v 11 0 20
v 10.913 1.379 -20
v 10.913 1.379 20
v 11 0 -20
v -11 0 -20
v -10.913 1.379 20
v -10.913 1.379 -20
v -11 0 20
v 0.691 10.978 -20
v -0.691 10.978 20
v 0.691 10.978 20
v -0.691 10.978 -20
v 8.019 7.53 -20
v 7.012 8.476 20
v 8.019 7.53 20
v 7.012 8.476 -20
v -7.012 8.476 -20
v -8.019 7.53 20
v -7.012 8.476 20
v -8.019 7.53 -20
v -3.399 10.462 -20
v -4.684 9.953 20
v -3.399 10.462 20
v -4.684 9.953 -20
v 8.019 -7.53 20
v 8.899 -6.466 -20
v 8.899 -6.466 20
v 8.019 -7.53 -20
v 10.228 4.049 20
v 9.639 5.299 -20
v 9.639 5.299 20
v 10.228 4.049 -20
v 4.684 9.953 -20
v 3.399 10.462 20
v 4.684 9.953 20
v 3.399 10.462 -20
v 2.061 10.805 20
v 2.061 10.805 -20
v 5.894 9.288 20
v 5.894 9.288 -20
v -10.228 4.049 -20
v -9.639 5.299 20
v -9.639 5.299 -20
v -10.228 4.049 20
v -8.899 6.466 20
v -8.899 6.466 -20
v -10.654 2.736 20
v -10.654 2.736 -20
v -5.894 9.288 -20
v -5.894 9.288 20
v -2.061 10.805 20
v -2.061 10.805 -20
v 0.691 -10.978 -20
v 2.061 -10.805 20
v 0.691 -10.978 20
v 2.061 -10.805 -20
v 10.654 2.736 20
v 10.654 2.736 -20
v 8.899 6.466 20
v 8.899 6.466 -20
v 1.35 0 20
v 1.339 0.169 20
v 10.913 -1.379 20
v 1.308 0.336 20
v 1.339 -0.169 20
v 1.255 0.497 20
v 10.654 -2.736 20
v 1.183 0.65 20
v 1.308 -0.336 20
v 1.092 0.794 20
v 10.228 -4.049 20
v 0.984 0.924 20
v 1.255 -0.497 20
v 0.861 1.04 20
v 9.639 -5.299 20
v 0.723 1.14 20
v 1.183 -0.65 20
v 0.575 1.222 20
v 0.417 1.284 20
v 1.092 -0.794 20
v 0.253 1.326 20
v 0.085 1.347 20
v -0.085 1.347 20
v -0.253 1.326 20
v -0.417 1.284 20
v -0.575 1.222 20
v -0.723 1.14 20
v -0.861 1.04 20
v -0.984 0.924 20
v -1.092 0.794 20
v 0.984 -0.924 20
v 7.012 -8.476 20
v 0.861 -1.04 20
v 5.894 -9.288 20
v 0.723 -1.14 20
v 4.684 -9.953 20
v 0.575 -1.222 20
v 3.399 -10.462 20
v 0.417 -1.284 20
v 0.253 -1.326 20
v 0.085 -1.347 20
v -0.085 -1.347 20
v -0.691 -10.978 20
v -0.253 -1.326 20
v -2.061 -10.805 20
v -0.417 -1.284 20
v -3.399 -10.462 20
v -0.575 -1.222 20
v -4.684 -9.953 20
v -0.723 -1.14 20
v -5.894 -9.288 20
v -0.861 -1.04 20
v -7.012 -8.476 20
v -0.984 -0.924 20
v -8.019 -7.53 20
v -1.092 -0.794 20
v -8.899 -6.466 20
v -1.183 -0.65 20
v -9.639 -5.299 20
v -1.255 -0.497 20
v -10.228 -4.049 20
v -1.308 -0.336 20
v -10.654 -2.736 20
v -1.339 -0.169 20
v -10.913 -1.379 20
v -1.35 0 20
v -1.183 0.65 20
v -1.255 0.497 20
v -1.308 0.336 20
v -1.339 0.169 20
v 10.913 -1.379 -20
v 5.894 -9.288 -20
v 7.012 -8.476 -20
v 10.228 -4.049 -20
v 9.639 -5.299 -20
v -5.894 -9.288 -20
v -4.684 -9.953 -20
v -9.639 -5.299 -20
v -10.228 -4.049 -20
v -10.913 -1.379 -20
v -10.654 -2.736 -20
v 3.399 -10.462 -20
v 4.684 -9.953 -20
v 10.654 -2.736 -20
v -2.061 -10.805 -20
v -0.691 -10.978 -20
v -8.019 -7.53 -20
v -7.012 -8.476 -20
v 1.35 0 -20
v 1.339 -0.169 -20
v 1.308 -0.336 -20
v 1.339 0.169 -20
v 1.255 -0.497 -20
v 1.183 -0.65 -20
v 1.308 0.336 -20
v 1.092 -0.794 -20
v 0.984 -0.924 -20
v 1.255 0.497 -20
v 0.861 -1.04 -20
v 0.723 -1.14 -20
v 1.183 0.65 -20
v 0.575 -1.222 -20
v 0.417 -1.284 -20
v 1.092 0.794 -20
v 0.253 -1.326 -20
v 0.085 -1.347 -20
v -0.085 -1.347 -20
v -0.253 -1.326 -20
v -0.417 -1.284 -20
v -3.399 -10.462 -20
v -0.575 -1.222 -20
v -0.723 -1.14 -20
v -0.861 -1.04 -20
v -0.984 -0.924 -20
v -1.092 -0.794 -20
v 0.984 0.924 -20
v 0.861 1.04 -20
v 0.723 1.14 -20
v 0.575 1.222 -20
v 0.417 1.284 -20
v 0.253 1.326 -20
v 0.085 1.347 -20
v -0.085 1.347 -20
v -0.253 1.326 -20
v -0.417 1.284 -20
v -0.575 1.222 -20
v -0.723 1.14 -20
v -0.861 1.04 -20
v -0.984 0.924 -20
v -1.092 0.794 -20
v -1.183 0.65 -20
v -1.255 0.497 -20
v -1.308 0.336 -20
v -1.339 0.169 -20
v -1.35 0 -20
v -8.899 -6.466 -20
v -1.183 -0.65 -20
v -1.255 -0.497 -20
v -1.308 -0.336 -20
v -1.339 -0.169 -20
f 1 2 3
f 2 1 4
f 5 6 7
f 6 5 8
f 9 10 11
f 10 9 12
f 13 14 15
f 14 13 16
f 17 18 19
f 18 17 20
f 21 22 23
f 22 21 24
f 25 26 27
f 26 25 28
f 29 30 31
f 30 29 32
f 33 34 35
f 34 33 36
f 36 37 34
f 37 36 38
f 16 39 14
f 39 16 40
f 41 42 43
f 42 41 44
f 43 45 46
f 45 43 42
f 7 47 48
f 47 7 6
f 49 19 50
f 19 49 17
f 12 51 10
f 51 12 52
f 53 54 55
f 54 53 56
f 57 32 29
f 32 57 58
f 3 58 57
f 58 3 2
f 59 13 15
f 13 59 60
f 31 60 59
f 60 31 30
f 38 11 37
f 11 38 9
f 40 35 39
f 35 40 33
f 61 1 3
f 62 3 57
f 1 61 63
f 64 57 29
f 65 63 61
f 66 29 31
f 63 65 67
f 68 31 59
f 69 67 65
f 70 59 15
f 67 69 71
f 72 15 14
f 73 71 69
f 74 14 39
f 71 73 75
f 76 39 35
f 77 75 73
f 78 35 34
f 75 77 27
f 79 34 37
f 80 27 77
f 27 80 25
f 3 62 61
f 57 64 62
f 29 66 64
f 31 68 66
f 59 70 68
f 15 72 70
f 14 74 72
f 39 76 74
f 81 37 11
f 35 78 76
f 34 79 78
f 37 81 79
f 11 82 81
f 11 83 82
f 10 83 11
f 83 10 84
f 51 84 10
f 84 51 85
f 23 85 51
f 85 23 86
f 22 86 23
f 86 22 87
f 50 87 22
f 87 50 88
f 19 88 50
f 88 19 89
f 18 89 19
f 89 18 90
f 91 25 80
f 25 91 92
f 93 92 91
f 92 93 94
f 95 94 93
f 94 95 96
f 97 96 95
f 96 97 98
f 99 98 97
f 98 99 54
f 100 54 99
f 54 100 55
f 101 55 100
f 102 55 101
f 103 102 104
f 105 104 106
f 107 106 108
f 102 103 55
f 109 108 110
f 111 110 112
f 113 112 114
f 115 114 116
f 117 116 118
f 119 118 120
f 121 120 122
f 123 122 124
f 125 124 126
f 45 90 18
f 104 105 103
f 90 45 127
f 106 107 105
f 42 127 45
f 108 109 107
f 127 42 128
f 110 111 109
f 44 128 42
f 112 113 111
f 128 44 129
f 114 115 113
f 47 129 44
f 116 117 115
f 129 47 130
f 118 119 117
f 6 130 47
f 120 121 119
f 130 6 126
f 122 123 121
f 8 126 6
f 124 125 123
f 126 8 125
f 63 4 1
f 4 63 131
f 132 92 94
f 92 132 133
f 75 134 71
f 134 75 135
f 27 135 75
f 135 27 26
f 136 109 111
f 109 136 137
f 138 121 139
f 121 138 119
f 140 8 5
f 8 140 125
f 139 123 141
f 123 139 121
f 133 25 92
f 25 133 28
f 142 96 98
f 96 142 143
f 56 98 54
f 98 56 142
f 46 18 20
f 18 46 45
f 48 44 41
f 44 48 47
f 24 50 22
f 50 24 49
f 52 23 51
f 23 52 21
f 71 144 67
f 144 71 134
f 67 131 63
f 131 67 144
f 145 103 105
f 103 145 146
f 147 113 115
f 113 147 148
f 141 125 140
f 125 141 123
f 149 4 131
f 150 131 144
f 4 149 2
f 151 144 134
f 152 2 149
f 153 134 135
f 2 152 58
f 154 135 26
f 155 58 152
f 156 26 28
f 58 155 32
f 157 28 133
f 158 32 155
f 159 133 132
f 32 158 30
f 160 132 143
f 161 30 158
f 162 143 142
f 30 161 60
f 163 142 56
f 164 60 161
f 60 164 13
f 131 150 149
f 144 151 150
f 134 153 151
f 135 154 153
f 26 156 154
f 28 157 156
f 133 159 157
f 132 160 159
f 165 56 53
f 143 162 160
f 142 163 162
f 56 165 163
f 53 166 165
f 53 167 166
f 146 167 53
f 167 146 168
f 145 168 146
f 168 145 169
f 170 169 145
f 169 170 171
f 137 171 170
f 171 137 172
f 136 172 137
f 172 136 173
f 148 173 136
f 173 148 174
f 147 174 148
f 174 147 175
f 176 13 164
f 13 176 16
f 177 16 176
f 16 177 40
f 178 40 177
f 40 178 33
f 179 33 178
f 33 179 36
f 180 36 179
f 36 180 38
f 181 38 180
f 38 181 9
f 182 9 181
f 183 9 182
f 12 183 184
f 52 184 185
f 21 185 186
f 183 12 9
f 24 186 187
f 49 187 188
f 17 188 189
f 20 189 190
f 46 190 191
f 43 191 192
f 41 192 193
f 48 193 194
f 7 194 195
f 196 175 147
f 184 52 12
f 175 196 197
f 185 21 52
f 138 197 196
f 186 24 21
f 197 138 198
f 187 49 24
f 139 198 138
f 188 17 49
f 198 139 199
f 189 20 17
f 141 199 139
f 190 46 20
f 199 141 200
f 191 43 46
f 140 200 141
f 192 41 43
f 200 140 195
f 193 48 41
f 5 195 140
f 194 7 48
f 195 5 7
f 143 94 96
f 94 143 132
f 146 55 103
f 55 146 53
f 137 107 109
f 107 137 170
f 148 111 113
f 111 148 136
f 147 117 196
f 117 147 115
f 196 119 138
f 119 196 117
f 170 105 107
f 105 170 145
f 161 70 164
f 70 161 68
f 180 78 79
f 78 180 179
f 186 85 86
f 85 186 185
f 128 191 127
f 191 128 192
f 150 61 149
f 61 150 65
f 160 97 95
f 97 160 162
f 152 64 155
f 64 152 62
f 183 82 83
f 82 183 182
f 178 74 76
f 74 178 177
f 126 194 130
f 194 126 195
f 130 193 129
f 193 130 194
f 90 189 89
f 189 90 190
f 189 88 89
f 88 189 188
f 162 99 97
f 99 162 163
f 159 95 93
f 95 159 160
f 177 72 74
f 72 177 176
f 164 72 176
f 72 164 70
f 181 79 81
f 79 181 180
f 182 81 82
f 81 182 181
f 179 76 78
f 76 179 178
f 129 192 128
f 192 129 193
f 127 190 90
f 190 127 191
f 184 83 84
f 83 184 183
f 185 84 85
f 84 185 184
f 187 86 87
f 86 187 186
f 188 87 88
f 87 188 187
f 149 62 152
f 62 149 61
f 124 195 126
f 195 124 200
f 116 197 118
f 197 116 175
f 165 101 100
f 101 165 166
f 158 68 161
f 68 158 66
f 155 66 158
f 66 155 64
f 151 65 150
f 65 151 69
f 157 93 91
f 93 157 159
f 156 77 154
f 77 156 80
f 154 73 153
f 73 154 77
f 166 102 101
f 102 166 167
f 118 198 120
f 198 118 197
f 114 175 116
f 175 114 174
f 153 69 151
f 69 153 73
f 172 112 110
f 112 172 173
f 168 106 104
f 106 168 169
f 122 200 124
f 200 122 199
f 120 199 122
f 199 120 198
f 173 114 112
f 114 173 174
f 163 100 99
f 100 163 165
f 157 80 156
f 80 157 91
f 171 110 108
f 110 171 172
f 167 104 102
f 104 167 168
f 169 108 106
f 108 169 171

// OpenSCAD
$fn = 50;


difference() {
	union() {
		translate(v = [0, 0, -20.0000000000]) {
			cylinder(h = 40, r = 11.0000000000);
		}
	}
	union() {
		translate(v = [0, 0, -100.0000000000]) {
			cylinder(h = 200, r = 1.3500000000);
		}
	}
}
